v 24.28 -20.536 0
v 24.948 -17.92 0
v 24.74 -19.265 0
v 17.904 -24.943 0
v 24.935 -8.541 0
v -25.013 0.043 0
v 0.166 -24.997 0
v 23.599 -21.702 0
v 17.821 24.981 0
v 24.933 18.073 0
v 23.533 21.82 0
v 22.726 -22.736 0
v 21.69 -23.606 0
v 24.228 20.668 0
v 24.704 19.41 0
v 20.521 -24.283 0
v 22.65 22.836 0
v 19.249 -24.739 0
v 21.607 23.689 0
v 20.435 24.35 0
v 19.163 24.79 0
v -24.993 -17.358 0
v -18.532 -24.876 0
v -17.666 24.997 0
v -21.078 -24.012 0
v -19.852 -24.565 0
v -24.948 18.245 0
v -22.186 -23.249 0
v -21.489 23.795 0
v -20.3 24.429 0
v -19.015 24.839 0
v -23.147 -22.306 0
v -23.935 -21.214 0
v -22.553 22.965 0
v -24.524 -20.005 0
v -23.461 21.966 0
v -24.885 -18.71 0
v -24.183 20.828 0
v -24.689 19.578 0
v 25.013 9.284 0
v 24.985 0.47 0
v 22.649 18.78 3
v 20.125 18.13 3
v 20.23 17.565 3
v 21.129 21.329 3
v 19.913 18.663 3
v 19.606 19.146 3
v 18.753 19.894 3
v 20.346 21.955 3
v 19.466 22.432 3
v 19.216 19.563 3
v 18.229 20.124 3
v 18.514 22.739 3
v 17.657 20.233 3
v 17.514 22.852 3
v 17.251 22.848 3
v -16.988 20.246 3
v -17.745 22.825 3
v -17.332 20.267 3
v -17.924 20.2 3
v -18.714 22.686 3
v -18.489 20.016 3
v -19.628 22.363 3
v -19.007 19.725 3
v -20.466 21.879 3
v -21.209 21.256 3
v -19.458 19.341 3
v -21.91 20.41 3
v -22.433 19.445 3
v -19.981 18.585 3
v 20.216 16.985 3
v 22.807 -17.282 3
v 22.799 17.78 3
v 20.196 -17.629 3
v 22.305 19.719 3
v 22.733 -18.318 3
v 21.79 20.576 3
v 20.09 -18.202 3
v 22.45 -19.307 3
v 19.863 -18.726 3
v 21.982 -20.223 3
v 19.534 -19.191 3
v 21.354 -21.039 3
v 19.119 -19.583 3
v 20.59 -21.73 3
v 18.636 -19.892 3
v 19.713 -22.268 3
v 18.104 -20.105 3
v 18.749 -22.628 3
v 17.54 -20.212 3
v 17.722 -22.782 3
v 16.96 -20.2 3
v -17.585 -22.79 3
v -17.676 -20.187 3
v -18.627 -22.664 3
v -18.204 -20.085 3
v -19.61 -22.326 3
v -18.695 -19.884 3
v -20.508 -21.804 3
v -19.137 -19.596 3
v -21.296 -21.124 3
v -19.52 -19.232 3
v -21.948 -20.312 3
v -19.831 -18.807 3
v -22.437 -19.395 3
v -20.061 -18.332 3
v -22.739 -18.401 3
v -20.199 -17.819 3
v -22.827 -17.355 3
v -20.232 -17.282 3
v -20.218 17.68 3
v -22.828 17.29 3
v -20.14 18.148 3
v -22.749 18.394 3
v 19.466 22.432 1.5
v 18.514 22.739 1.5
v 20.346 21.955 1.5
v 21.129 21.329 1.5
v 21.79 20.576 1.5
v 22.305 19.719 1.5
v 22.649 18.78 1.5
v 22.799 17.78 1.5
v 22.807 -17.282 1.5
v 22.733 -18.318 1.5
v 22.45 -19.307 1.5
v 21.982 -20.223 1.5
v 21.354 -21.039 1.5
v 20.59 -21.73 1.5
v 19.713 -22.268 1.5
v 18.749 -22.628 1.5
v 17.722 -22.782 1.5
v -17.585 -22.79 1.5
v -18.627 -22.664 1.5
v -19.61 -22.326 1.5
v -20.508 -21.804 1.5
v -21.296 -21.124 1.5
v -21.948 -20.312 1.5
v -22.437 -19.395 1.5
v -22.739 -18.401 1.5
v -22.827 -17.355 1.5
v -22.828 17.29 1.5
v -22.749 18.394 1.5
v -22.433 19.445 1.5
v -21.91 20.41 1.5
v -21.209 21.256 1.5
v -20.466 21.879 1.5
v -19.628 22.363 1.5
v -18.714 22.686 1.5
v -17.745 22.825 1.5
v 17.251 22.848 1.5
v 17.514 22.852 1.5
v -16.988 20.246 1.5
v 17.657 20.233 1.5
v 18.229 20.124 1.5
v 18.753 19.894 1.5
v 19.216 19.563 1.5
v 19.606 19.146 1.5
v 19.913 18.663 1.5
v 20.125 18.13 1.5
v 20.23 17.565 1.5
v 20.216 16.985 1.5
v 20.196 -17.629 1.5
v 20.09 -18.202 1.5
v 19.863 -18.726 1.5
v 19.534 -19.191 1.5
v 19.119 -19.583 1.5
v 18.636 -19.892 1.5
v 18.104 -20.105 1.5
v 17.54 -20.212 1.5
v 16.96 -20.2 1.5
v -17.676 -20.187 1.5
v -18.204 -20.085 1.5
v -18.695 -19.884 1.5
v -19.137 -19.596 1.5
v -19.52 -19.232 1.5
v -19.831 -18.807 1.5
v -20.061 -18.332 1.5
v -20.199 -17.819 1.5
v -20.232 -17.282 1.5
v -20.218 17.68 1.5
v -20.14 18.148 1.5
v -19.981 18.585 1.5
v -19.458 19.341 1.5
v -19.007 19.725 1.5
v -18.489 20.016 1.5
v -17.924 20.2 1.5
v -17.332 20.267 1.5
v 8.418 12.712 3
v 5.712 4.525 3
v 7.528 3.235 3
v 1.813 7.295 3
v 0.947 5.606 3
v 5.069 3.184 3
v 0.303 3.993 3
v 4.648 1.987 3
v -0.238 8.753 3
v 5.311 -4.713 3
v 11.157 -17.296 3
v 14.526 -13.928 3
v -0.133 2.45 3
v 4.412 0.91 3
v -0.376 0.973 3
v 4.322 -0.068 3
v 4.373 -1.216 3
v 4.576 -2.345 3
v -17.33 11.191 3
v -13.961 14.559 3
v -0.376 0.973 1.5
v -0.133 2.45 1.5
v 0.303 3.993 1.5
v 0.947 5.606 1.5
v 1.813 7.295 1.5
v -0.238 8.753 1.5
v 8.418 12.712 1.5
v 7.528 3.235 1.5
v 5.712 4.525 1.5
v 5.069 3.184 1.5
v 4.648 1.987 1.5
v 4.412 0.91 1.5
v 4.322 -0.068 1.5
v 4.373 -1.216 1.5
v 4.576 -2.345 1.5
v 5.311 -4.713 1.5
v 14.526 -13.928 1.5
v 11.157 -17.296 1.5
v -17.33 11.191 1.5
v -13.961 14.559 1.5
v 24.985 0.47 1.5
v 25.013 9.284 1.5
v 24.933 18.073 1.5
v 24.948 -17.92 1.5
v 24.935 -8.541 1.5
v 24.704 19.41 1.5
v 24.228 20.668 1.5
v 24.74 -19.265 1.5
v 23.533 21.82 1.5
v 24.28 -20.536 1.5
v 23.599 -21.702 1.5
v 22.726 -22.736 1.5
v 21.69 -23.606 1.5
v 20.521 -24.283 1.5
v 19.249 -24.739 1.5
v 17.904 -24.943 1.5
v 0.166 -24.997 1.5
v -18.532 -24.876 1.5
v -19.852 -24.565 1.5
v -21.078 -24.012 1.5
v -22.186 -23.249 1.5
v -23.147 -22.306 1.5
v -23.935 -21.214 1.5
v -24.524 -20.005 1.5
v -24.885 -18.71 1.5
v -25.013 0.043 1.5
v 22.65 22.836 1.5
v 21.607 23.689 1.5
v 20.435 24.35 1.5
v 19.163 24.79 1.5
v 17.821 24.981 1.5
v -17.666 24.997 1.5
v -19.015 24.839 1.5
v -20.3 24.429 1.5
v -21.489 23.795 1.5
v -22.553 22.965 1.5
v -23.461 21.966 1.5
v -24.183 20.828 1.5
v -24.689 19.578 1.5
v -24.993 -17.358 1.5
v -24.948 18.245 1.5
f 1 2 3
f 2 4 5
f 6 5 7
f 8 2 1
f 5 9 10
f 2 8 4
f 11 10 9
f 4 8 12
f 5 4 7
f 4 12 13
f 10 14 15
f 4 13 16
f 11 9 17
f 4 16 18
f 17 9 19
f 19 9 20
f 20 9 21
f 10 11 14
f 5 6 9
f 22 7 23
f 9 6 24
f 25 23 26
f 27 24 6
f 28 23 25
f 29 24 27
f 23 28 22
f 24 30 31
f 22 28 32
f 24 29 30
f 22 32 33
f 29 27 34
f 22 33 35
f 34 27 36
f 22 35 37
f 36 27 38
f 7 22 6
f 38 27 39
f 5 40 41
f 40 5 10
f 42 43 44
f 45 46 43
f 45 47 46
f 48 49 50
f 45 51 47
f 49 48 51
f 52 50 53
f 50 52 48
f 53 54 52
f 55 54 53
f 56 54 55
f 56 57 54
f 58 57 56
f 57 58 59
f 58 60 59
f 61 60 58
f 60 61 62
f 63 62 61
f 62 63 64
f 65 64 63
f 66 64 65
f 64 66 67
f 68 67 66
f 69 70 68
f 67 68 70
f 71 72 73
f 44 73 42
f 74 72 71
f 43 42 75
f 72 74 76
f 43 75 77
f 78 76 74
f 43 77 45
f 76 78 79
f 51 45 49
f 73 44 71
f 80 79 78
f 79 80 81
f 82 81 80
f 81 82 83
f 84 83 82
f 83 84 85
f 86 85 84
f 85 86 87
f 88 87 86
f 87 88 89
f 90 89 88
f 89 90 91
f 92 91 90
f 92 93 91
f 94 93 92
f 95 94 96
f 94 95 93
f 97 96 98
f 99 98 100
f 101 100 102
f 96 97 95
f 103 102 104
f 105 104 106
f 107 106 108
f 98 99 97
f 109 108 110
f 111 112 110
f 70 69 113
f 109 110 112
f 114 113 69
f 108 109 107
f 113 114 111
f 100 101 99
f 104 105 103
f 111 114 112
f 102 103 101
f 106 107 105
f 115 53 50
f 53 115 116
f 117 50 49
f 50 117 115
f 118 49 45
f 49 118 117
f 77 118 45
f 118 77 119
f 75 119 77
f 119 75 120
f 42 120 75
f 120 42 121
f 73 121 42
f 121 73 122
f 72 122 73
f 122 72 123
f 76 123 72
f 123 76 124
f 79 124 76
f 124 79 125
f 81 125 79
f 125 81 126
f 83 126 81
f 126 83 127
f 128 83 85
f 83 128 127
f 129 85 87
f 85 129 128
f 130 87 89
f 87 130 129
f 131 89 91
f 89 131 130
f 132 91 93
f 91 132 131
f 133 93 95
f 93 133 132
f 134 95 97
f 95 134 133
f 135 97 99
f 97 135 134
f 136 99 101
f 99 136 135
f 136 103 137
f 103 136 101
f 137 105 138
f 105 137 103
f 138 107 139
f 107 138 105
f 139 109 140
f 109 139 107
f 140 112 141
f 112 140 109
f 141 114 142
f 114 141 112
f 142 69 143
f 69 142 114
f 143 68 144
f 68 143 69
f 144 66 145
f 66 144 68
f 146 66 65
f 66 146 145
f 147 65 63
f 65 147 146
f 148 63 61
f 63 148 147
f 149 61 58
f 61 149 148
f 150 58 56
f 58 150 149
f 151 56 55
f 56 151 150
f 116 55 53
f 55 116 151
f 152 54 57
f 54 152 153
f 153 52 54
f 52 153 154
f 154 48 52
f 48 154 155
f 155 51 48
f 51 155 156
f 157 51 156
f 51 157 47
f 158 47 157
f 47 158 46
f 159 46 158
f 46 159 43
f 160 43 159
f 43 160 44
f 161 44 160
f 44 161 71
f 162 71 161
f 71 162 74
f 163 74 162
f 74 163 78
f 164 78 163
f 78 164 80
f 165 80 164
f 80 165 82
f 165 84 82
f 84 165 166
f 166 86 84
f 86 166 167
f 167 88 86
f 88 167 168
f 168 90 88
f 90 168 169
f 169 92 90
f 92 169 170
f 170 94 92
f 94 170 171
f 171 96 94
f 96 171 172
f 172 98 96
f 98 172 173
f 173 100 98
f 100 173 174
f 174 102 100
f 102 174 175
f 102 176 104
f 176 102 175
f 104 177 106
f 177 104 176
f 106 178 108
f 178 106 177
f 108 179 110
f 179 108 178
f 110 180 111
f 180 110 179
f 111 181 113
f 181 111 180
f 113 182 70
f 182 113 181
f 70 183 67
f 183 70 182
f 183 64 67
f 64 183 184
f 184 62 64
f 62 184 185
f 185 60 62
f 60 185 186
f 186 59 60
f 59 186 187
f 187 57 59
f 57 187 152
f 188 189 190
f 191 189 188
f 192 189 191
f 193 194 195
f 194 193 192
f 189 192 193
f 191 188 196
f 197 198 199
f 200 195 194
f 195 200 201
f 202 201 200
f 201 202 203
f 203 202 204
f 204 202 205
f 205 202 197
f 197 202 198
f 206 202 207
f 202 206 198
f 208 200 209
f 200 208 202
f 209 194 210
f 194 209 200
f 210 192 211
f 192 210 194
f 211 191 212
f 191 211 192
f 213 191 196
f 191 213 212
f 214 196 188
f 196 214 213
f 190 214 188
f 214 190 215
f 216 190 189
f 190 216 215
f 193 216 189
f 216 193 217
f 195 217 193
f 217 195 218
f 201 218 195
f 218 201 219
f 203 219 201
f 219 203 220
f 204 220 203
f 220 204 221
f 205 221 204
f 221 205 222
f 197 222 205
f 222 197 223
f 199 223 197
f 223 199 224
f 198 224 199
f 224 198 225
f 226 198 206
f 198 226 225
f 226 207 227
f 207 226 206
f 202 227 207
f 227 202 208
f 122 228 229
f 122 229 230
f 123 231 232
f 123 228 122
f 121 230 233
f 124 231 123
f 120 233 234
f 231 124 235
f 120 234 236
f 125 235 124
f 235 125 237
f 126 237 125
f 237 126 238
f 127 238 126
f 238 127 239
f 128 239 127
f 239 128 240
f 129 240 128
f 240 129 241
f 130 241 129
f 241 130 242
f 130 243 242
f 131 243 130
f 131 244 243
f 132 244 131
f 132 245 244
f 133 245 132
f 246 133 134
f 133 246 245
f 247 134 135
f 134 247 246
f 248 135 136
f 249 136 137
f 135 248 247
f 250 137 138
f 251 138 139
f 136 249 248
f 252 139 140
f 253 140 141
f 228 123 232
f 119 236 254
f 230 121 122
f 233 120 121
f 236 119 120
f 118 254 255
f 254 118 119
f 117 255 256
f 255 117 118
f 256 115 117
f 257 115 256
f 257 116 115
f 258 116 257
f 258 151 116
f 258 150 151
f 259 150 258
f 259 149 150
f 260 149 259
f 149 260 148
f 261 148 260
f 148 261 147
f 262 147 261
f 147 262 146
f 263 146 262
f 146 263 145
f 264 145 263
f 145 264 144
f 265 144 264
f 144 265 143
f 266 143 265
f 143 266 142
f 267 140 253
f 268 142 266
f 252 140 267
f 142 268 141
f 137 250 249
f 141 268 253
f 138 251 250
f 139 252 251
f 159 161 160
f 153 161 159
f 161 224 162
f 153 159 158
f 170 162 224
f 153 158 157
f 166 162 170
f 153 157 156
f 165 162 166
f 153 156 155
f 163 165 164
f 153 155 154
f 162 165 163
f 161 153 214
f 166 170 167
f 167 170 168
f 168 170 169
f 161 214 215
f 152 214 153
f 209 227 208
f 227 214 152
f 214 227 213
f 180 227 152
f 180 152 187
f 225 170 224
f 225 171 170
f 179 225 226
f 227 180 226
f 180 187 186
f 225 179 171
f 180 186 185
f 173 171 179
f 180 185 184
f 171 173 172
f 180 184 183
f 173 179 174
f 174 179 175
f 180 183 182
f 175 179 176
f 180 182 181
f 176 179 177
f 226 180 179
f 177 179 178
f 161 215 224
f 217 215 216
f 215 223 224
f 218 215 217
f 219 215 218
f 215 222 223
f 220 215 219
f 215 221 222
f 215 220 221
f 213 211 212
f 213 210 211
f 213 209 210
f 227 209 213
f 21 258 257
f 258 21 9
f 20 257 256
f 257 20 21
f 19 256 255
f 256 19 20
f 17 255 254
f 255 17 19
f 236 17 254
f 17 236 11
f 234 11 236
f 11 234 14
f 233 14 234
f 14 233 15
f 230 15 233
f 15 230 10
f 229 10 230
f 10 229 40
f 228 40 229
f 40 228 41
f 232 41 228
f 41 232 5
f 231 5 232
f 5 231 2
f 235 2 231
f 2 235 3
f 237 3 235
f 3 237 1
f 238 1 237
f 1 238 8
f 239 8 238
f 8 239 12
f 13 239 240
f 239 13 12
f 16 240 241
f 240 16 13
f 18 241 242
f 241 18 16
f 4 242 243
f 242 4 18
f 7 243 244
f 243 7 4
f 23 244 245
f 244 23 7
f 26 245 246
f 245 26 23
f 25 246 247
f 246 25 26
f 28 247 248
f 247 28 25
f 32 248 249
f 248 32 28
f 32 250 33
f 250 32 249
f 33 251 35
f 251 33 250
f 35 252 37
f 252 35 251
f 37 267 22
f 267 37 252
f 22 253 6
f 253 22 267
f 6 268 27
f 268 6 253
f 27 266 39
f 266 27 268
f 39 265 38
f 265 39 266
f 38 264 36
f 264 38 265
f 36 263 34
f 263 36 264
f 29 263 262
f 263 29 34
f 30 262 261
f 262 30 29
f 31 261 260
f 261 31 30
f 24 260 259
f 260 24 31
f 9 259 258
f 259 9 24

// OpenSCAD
// Module names are of the form poly_<inkscape-path-id>().  As a result,
// you can associate a polygon in this OpenSCAD program with the corresponding
// SVG element in the Inkscape document by looking for the XML element with
// the attribute id="inkscape-path-id".

// fudge value is used to ensure that subtracted solids are a tad taller
// in the z dimension than the polygon being subtracted from.  This helps
// keep the resulting .stl file manifold.
fudge = 0.1;

module poly_fg_arrow_3_mm(h)
{
  scale([25.4/90, -25.4/90, 1]) union()
  {
    linear_extrude(height=h)
      polygon([[-61.404415,-39.652187],[39.533525,61.285753],[51.468305,49.350963],[18.816885,16.699553],[16.215730,8.310009],[15.496248,4.307198],[15.315275,0.239283],[15.631908,-3.223604],[16.469444,-7.038886],[17.961294,-11.283354],[20.240865,-16.033797],[26.674135,-11.462857],[29.826495,-45.041857],[-0.844165,-31.013877],[6.423995,-25.849677],[3.355475,-19.865287],[1.074668,-14.147050],[-0.470370,-8.679939],[-1.331585,-3.448927],[-49.469635,-51.586967],[-61.404415,-39.652187]]);
  }
}

module poly_fg_border_3_mm(h)
{
  scale([25.4/90, -25.4/90, 1]) union()
  {
    difference()
    {
       linear_extrude(height=h)
         polygon([[62.056225,-80.972867],[61.124585,-80.957267],[-62.876395,-80.875267],[-66.309863,-80.382864],[-69.547482,-79.240147],[-72.517917,-77.525586],[-75.149835,-75.317647],[-77.633397,-72.318040],[-79.486792,-68.899811],[-80.606279,-65.177073],[-80.888115,-61.263937],[-80.884115,61.492903],[-80.570973,65.199637],[-79.501504,68.723928],[-77.766904,71.971354],[-75.458375,74.847493],[-72.667113,77.257920],[-69.484318,79.108214],[-66.001189,80.303953],[-62.308925,80.750713],[62.794595,80.725313],[66.434972,80.176724],[69.850533,78.902076],[72.955357,76.994709],[75.663524,74.547968],[77.889112,71.655193],[79.546201,68.409729],[80.548869,64.904918],[80.811195,61.234103],[80.782895,-62.998327],[80.253839,-66.541729],[79.033470,-69.870972],[77.208620,-72.907911],[74.866123,-75.574400],[72.092812,-77.792292],[68.975520,-79.483442],[65.601080,-80.569702],[62.056325,-80.972927]]);
       translate([0, 0, -fudge])
         linear_extrude(height=h+2*fudge)
           polygon([[-61.411555,-71.810757],[-60.194755,-71.738457],[62.564035,-71.691557],[64.592437,-71.303983],[66.446988,-70.491705],[68.086760,-69.316945],[69.470823,-67.841927],[70.558249,-66.128875],[71.308109,-64.240010],[71.679474,-62.237557],[71.631415,-60.183737],[71.562115,62.465673],[71.184767,64.495546],[70.381047,66.353480],[69.213267,67.998114],[67.743737,69.388084],[66.034768,70.482027],[64.148671,71.238581],[62.147756,71.616384],[60.094335,71.574073],[-62.630275,71.527273],[-64.502361,71.167871],[-66.241449,70.455161],[-67.808340,69.433336],[-69.163835,68.146591],[-70.268736,66.639121],[-71.083845,64.955120],[-71.569964,63.138782],[-71.687895,61.234303],[-71.639095,-62.644607],[-71.362868,-64.302842],[-70.799455,-65.851219],[-68.943775,-68.532297],[-67.347050,-69.891919],[-65.512986,-70.921525],[-63.511261,-71.576097],[-61.411555,-71.810617]]);
    }
  }
}

module poly_bg_1_5_mm(h)
{
  scale([25.4/90, -25.4/90, 1]) union()
  {
    linear_extrude(height=h)
      polygon([[-88.558885,61.506523],[-88.175720,66.294046],[-86.894162,70.884744],[-84.809347,75.168765],[-82.016411,79.036259],[-78.610489,82.377375],[-74.686716,85.082263],[-70.340230,87.041072],[-65.666165,88.143953],[0.586542,88.571407],[63.437465,88.381793],[68.206165,87.657109],[72.713543,86.042241],[76.854759,83.641414],[80.524972,80.558858],[83.619340,76.898797],[86.033024,72.765459],[87.661183,68.263072],[88.398975,63.495863],[88.351346,30.262079],[88.528229,-1.666360],[88.627186,-32.897130],[88.345775,-64.037907],[87.535687,-68.774495],[85.847132,-73.233638],[83.385049,-77.314481],[80.254375,-80.916170],[76.560048,-83.937851],[72.407006,-86.278671],[67.900186,-87.837774],[63.144525,-88.514308],[-62.596215,-88.571407],[-67.376583,-88.012729],[-71.927585,-86.560077],[-76.141763,-84.313040],[-79.911658,-81.371205],[-83.129812,-77.834162],[-85.688765,-73.801499],[-87.481059,-69.372805],[-88.399235,-64.647667],[-88.627186,-0.153696],[-88.558835,61.506513]]);
  }
}

module inkscape(h)
{

poly_fg_arrow_3_mm(3);
poly_fg_border_3_mm(3);
poly_bg_1_5_mm(1.5);
}

inkscape(5);
